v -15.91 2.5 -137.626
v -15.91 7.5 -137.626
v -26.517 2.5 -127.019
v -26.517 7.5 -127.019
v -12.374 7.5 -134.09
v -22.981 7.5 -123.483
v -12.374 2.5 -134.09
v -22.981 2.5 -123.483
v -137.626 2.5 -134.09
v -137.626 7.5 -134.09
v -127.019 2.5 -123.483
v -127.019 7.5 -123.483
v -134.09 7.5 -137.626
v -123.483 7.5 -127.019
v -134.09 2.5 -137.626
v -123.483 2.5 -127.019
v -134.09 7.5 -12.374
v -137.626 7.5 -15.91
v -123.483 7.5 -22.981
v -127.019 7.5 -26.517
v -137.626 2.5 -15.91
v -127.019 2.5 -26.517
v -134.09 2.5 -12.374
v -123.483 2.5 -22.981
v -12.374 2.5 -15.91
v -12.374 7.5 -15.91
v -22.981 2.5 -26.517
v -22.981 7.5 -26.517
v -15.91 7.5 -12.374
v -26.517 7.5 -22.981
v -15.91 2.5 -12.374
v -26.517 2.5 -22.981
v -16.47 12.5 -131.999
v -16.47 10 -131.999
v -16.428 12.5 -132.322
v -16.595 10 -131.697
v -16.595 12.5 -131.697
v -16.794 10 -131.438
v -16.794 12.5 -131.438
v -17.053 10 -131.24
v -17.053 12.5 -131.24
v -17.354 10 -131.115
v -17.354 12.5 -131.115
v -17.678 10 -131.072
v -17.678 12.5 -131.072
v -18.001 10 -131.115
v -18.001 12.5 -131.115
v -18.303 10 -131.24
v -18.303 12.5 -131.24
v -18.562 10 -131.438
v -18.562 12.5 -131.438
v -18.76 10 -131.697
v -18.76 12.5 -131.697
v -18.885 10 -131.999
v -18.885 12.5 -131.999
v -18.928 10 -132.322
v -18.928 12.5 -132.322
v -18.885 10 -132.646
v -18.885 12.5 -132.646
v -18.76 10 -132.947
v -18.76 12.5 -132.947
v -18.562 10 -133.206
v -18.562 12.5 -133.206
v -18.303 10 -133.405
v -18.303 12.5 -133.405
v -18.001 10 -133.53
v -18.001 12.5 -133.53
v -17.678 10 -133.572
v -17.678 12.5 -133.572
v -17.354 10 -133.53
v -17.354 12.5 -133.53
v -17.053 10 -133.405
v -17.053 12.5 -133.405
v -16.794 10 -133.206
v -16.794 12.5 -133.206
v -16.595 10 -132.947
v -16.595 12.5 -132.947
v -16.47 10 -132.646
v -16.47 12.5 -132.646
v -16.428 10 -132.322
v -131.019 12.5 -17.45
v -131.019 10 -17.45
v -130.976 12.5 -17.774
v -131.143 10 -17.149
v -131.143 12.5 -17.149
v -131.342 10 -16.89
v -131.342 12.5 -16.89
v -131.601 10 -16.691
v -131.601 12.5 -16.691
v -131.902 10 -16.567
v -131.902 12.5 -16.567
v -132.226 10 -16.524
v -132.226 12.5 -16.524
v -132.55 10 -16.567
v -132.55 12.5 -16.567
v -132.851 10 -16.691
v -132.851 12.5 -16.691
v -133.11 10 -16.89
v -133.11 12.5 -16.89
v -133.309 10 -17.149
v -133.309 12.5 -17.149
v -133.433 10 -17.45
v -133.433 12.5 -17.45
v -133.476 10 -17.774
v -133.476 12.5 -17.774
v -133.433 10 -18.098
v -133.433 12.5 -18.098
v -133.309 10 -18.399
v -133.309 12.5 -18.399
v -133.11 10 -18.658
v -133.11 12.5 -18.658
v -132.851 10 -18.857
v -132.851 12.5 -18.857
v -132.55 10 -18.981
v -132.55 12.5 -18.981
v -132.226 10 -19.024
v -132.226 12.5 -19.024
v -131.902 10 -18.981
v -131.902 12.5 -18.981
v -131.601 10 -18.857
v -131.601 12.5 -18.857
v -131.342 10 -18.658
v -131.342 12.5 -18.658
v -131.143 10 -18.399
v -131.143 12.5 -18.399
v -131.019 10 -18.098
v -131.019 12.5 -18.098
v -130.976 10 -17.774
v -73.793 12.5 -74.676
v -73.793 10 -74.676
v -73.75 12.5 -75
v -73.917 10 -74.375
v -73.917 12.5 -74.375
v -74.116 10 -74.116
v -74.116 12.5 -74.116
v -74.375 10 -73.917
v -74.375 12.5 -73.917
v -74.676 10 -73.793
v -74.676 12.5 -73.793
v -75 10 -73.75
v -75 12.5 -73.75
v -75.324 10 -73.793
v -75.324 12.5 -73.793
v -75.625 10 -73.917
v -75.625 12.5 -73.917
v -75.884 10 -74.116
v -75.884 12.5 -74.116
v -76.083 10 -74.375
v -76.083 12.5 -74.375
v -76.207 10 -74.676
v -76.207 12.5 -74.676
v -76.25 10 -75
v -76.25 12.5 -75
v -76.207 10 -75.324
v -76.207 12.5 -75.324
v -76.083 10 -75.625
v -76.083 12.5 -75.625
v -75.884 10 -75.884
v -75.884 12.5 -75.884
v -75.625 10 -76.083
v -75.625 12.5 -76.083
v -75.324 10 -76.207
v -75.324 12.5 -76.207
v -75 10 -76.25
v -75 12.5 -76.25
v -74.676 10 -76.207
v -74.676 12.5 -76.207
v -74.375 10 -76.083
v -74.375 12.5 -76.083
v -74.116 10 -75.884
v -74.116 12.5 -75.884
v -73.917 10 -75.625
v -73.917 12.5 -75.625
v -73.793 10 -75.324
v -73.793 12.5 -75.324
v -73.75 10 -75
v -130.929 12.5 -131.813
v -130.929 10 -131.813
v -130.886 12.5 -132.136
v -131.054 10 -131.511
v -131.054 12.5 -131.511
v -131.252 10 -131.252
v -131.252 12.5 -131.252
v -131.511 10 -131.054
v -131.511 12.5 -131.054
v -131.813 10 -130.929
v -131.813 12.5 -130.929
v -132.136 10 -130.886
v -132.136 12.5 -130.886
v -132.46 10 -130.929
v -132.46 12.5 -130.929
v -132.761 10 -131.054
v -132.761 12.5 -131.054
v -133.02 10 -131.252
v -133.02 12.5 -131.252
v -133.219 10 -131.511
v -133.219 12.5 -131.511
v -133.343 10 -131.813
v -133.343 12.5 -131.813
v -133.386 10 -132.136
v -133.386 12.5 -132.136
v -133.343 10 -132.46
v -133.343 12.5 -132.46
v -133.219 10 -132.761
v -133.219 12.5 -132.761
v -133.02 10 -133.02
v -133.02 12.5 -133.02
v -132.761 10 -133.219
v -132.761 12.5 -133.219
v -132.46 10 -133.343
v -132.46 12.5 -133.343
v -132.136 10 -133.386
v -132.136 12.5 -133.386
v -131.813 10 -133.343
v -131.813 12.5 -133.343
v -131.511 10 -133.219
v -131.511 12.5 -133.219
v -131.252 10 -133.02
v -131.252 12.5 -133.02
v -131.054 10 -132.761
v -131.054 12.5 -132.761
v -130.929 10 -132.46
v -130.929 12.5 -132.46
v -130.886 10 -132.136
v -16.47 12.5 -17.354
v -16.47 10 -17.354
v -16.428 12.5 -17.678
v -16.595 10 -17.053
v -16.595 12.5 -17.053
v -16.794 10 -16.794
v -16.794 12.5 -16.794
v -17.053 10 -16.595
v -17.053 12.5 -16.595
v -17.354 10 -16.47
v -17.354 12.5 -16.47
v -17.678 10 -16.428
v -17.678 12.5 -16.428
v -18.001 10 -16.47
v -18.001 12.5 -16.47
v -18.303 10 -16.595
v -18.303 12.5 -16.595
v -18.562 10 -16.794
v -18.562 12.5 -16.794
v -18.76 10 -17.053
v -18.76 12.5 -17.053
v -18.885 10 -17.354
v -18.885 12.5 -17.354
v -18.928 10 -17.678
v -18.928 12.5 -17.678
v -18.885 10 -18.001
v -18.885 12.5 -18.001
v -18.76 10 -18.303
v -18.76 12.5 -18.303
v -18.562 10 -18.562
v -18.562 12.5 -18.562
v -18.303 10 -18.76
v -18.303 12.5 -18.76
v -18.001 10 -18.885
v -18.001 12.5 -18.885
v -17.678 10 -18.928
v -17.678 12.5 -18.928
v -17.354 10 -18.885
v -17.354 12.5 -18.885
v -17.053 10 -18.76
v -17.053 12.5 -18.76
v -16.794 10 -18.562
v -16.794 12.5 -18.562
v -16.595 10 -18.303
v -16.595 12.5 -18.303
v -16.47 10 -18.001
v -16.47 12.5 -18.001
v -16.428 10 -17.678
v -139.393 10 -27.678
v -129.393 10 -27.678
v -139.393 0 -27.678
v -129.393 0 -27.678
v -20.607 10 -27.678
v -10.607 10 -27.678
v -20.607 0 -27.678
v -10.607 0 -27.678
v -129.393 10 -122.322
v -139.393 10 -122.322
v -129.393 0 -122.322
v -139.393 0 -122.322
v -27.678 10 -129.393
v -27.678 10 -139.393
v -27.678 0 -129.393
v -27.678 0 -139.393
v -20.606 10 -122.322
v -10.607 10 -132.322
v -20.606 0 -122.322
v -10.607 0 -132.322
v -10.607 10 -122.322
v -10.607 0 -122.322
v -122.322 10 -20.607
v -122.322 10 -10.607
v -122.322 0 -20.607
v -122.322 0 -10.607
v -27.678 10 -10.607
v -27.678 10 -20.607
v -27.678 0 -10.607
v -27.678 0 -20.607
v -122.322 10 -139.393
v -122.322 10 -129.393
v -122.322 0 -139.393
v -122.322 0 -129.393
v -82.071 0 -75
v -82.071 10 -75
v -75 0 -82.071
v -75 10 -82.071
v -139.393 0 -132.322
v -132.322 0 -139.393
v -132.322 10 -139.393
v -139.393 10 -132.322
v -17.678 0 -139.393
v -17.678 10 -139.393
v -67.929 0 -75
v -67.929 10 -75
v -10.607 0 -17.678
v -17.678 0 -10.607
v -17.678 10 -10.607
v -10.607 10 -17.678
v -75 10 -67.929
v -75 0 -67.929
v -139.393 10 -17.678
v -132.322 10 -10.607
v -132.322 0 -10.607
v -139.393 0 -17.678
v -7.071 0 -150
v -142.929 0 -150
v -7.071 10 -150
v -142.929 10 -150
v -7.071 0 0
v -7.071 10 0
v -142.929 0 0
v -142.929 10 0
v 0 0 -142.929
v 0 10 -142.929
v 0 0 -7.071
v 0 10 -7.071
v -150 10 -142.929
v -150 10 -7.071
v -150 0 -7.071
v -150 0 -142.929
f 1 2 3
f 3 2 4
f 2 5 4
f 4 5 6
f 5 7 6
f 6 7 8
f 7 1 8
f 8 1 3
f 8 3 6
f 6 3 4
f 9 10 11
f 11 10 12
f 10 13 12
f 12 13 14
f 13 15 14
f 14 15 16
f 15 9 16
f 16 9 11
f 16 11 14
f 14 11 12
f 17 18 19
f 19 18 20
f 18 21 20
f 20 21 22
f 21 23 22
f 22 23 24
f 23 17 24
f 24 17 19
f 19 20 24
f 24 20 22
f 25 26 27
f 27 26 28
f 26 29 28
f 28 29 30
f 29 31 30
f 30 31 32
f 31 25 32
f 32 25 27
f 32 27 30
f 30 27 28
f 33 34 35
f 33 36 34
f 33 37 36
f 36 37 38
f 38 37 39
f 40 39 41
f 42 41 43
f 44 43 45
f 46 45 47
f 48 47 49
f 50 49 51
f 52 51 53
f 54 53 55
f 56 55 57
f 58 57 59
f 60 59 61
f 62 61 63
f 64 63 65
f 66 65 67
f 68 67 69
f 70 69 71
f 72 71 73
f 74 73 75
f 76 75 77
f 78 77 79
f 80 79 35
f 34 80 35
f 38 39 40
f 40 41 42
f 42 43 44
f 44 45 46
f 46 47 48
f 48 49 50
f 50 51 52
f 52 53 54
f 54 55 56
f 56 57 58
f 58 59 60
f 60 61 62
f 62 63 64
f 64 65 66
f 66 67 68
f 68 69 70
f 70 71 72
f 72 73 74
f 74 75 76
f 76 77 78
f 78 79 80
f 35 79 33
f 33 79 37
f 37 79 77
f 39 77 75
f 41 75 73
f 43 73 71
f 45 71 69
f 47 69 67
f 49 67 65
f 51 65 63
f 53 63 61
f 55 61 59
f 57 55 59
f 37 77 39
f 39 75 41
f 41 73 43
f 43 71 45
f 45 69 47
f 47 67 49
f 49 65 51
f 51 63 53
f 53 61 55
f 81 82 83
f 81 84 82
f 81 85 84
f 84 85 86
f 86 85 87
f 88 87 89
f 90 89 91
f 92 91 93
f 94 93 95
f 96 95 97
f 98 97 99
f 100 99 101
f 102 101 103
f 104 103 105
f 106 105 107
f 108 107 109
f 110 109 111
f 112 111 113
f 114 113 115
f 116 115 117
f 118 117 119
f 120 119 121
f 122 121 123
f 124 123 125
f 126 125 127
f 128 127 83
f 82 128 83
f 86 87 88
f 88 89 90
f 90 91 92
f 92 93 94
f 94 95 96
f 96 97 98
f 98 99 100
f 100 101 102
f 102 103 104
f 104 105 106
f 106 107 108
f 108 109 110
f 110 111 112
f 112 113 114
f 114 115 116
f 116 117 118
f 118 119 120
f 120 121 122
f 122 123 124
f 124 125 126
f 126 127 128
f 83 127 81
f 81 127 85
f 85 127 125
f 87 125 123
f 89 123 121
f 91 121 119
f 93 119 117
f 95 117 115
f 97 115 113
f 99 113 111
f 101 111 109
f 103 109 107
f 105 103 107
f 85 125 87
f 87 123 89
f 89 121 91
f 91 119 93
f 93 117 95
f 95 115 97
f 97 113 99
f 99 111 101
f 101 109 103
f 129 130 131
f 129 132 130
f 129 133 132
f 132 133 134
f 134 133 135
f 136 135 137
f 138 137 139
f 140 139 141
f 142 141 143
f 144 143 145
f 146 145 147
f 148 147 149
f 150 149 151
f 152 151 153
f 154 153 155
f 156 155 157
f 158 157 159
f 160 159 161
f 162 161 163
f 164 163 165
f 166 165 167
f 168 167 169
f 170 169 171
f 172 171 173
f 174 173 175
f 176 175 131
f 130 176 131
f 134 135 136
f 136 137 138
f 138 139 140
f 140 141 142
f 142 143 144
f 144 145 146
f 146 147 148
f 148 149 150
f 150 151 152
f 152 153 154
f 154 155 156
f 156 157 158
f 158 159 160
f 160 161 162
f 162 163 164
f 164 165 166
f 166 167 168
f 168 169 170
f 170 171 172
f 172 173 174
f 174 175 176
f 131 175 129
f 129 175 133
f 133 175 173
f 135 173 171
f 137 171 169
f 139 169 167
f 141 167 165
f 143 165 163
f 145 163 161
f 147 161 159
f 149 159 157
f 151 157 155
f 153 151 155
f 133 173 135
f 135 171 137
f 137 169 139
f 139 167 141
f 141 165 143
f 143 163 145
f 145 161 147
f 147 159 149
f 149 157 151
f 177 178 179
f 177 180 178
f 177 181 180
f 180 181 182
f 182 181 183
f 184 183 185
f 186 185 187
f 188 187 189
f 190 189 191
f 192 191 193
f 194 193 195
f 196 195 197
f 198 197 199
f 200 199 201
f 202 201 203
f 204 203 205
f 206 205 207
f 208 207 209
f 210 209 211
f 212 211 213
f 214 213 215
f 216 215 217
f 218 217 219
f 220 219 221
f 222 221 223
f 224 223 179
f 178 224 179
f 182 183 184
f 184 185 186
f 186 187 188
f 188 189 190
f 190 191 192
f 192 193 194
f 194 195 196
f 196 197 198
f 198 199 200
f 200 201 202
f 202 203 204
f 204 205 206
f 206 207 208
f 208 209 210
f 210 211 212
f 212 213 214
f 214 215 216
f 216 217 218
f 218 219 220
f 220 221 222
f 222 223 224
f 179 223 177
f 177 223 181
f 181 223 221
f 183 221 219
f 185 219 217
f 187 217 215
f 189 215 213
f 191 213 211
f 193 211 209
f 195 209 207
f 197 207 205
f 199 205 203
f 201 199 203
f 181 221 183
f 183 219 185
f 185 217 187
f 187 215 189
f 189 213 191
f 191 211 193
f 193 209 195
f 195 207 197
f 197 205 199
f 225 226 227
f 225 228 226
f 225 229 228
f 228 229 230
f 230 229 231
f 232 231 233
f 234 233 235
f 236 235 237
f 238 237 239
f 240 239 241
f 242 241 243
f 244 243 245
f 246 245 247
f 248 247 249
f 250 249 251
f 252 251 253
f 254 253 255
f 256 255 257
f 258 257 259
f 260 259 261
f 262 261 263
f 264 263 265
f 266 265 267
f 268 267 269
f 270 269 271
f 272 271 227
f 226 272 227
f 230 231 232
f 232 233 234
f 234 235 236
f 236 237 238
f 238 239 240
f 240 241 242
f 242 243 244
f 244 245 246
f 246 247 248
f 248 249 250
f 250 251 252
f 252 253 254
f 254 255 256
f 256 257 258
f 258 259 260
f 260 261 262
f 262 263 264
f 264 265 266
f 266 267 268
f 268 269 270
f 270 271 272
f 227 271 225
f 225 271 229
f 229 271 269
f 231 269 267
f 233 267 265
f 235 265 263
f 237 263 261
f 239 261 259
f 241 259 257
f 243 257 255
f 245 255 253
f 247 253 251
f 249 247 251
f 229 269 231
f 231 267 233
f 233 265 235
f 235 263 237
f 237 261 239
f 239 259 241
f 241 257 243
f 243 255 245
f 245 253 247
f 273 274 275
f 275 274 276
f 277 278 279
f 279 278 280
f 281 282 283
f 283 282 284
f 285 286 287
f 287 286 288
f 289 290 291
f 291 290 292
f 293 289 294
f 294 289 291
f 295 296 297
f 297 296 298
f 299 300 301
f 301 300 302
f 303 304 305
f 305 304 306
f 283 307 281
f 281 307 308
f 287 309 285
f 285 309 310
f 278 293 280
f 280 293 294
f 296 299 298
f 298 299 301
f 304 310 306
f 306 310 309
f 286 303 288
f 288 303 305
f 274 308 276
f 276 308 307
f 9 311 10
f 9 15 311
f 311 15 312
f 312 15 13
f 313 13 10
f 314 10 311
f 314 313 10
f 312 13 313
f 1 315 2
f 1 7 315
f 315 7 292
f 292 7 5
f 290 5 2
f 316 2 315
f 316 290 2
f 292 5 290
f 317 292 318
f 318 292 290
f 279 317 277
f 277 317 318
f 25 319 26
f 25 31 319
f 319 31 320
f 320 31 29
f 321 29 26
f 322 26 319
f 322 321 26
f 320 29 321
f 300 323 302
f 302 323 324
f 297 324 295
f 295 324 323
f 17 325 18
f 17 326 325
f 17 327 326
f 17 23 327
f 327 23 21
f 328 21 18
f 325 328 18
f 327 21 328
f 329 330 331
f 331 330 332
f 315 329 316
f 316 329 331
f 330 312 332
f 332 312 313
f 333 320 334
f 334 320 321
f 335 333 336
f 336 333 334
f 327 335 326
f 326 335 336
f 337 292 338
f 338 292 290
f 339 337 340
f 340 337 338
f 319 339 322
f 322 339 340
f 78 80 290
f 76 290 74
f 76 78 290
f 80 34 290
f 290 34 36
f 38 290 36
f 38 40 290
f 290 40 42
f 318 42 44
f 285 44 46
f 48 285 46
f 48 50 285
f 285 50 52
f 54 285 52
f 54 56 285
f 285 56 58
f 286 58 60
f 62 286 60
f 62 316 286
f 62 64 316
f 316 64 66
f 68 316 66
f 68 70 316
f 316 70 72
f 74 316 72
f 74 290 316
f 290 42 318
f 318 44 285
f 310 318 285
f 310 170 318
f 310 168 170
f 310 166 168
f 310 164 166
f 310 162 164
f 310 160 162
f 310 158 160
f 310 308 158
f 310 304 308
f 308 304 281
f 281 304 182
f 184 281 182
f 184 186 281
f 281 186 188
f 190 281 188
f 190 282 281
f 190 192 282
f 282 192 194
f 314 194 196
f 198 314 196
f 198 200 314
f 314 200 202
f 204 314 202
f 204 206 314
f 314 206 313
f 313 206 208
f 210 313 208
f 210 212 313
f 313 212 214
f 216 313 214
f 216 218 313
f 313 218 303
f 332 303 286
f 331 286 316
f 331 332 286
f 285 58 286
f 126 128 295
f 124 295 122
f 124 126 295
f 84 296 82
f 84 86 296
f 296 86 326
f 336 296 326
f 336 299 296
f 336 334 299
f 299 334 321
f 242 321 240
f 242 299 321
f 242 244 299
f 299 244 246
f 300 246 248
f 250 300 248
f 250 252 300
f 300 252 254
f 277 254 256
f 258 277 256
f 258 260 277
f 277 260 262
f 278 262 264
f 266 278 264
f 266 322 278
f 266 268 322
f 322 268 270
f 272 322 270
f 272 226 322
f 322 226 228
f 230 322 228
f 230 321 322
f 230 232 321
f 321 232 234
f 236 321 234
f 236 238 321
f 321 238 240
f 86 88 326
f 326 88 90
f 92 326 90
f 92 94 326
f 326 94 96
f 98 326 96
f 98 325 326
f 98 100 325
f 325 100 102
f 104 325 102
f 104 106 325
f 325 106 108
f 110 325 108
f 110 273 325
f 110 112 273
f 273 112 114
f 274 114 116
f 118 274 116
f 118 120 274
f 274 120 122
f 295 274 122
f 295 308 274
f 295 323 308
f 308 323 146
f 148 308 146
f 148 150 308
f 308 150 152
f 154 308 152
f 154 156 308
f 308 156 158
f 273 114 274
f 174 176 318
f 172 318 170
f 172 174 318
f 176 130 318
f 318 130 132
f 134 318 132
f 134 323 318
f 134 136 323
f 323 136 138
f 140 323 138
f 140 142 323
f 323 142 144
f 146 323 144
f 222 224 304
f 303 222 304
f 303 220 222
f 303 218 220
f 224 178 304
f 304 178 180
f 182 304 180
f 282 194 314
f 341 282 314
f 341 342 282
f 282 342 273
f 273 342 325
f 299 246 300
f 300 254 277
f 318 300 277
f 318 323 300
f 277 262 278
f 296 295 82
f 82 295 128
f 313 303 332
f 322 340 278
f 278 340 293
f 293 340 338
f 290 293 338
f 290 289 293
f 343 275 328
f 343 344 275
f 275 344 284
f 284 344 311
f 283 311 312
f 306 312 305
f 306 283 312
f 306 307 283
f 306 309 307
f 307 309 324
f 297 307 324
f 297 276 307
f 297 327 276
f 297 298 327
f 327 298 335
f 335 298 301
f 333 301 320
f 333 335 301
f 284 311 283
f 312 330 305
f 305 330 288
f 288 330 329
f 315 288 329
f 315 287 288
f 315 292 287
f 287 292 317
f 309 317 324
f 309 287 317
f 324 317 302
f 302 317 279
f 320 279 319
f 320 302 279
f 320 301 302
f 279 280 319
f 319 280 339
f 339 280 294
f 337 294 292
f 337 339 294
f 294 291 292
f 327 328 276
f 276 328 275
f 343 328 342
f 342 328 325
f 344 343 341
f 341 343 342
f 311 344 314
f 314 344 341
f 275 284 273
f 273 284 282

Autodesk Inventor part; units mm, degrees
ref_plane "YZ Plane" through (0, 0, 0) normal (1, 0, 0) x (0, 1, 0)
ref_plane "XZ Plane" through (0, 0, 0) normal (0, 1, 0) x (-1, 0, 0)
ref_plane "XY Plane" through (0, 0, 0) normal (0, 0, 1) x (1, 0, 0)
sketch "Sketch1" plane through (0, 0, 0) normal (0, 1, 0) x (-1, 0, 0)
  line L0 (0, -7.0711) -> (0, -142.9289)
  line L1 (7.0711, 0) -> (142.9289, 0)
  line L2 (150, -7.0711) -> (150, -142.9289)
  line L3 (142.9289, -150) -> (7.0711, -150)
  line L4 (139.3934, -10.6066) -> (135.8579, -14.1421)
  line L5 (135.8579, -14.1421) -> (132.3223, -10.6066)
  line L6 (132.3223, -10.6066) -> (135.8579, -14.1421)
  line L7 (135.8579, -14.1421) -> (139.3934, -17.6777)
  line L8 (139.3934, -17.6777) -> (150, -7.0711)
  line L9 (132.3223, -10.6066) -> (142.9289, 0)
  line L10 (139.3934, -139.3934) -> (135.8579, -135.8579)
  line L11 (135.8579, -135.8579) -> (132.3223, -139.3934)
  line L12 (132.3223, -139.3934) -> (142.9289, -150)
  line L13 (135.8579, -135.8579) -> (139.3934, -132.3223)
  line L14 (139.3934, -132.3223) -> (150, -142.9289)
  line L15 (10.6066, -139.3934) -> (14.1421, -135.8579)
  line L16 (14.1421, -135.8579) -> (10.6066, -132.3223)
  line L17 (10.6066, -132.3223) -> (14.1421, -135.8579)
  line L18 (14.1421, -135.8579) -> (17.6777, -139.3934)
  line L19 (17.6777, -139.3934) -> (7.0711, -150)
  line L20 (10.6066, -132.3223) -> (0, -142.9289)
  line L21 (10.6066, -10.6066) -> (14.1421, -14.1421)
  line L22 (14.1421, -14.1421) -> (10.6066, -17.6777)
  line L23 (10.6066, -17.6777) -> (14.1421, -14.1421)
  line L24 (14.1421, -14.1421) -> (17.6777, -10.6066)
  line L25 (7.0711, 0) -> (17.6777, -10.6066)
  line L26 (10.6066, -17.6777) -> (0, -7.0711)
  line L27 (132.3223, -10.6066) -> (75, -67.9289)
  line L28 (67.9289, -75) -> (10.6066, -132.3223)
  line L29 (132.3223, -10.6066) -> (17.6777, -10.6066)
  line L30 (139.3934, -17.6777) -> (139.3934, -132.3223)
  line L31 (132.3223, -139.3934) -> (17.6777, -139.3934)
  line L32 (10.6066, -132.3223) -> (10.6066, -17.6777)
  line L33 (139.3934, -10.6066) -> (135.8579, -14.1421)
  line L34 (14.1421, -135.8579) -> (0, -150)
  line L35 (10.6066, -10.6066) -> (14.1421, -14.1421)
  line L36 (135.8579, -135.8579) -> (139.3934, -139.3934)
  line L37 (139.3934, -132.3223) -> (82.0711, -75)
  line L38 (75, -67.9289) -> (17.6777, -10.6066)
  line L39 (10.6066, -17.6777) -> (67.9289, -75)
  line L40 (75, -82.0711) -> (132.3223, -139.3934)
  line L41 (139.3934, -17.6777) -> (82.0711, -75)
  line L42 (75, -82.0711) -> (17.6777, -139.3934)
  point P0 (0, 0)
  dimension "d0" = 150
extrude "Extrusion1" add sketch "Sketch1" along normal blind 10 contours L26 L32 L20 L0 | L22 L24 L38 L27 L5 L7 L41 L37 L13 L11 L40 L42 L18 L16 L28 L39 | L25 L1 L9 L29 | L31 L12 L3 L19 | L8 L2 L14 L30
sketch "Sketch2" plane through (0, 10, 0) normal (0, 1, 0) x (1, 0, 0)
  line L0 (-17.6777, 10.6066) -> (-27.6777, 10.6066)
  line L1 (-17.6777, 10.6066) -> (-132.3223, 10.6066) projected
  line L2 (-27.6777, 10.6066) -> (-27.6777, 20.6066)
  line L3 (-75, 67.9289) -> (-17.6777, 10.6066) projected
  line L4 (-10.6066, 17.6777) -> (-67.9289, 75) projected
  line L5 (-20.6066, 27.6777) -> (-10.6066, 27.6777)
  line L6 (-10.6066, 27.6777) -> (-10.6066, 17.6777)
  line L7 (-10.6066, 132.3223) -> (-10.6066, 17.6777) projected
  line L8 (-132.3223, 10.6066) -> (-75, 67.9289) projected
  line L9 (-132.3223, 10.6066) -> (-122.3223, 10.6066)
  line L10 (-122.3223, 10.6066) -> (-122.3223, 20.6066)
  line L11 (-122.3223, 20.6066) -> (-129.3934, 27.6777)
  line L12 (-82.0711, 75) -> (-139.3934, 17.6777) projected
  line L13 (-139.3934, 27.6777) -> (-129.3934, 27.6777)
  line L14 (-139.3934, 17.6777) -> (-139.3934, 132.3223) projected
  line L15 (-139.3934, 27.6777) -> (-139.3934, 17.6777)
  line L16 (-139.3934, 17.6777) -> (-129.3934, 27.6777)
  line L17 (-132.3223, 10.6066) -> (-122.3223, 20.6066)
  line L18 (-139.3934, 132.3223) -> (-139.3934, 122.3223)
  line L19 (-139.3934, 122.3223) -> (-129.3934, 122.3223)
  line L20 (-139.3934, 132.3223) -> (-82.0711, 75) projected
  line L21 (-129.3934, 122.3223) -> (-122.3223, 129.3934)
  line L22 (-75, 82.0711) -> (-132.3223, 139.3934) projected
  line L23 (-122.3223, 129.3934) -> (-122.3223, 139.3934)
  line L24 (-132.3223, 139.3934) -> (-17.6777, 139.3934) projected
  line L25 (-122.3223, 139.3934) -> (-132.3223, 139.3934)
  line L26 (-17.6777, 139.3934) -> (-75, 82.0711) projected
  line L27 (-17.6777, 139.3934) -> (-27.6777, 139.3934)
  line L28 (-27.6777, 129.3934) -> (-27.6777, 139.3934)
  line L29 (-27.6777, 129.3934) -> (-20.6065, 122.3222)
  line L30 (-20.6065, 122.3222) -> (-10.6066, 122.3222)
  line L31 (-10.6066, 132.3223) -> (-20.6065, 122.3222)
  line L32 (-10.6066, 17.6777) -> (-20.6066, 27.6777)
  line L33 (-27.6777, 20.6066) -> (-17.6777, 10.6066)
  line L34 (-10.6066, 17.6777) -> (-10.6066, 27.6777)
  line L35 (-20.6066, 27.6777) -> (-10.6066, 17.6777)
  point P0 (0, 0)
  dimension "d9" = 10
  dimension "d10" = 10
  dimension "d11" = 10
extrude "Extrusion2" add sketch "Sketch2" against normal blind 10 contours L6 L4 L5 | L31 L7 L30 | L22 L24 L23 | L12 L14 L13 | L0 L2 L3 | L1 L8 L10 | L19 L14 L20 | L28 L24 L26
sketch "Sketch3" plane through (0, 10, 0) normal (0, 1, 0) x (1, 0, 0)
  line L0 (-67.9289, 75) -> (-10.6066, 132.3223) projected
  line L1 (-82.0711, 75) -> (-75, 67.9289)
  circle A0 centre (-75, 75) radius 1.25
  line L2 (-75, 82.0711) -> (-122.3223, 129.3934) projected
  line L3 (-82.0711, 75) -> (-129.3934, 27.6777) projected
  line L4 (-17.6777, 10.6066) -> (-10.6066, 17.6777) projected
  line L5 (-14.1421, 14.1421) -> (-17.6777, 10.6066)
  line L6 (-17.6777, 10.6066) -> (-14.1421, 14.1421)
  line L7 (-14.1421, 14.1421) -> (-17.6777, 10.6066)
  line L8 (-20.6066, 27.6777) -> (-67.9289, 75) projected
  line L9 (-10.6066, 132.3223) -> (-17.6777, 139.3934) projected
  circle A1 centre (-132.226, 17.774) radius 1.25
  circle A2 centre (-132.136, 132.136) radius 1.25
  circle A3 centre (-17.6777, 132.3223) radius 1.25
  circle A4 centre (-17.6777, 17.6777) radius 1.25
  point P0 (0, 0)
  dimension "d14" = 2.5
  dimension "d21" = 2.5
extrude "Extrusion3" add sketch "Sketch3" along normal blind 2.5
sketch "Sketch4" plane through (-10.6066, 0, -17.6777) normal (0.7071, 0, 0.7071) x (0.7071, 0, -0.7071)
  line L0 (-5, 0) -> (-5, 2.5)
  line L1 (-5, 2.5) -> (-2.5, 2.5)
  line L2 (-2.5, 2.5) -> (-2.5, 7.5)
  line L3 (-2.5, 7.5) -> (-7.5, 7.5)
  line L4 (-7.5, 7.5) -> (-7.5, 2.5)
  line L5 (-7.5, 2.5) -> (-5, 2.5)
  dimension "d25" = 2.5
  dimension "d26" = 2.5
  dimension "d27" = 5
  dimension "d28" = 5
extrude "Extrusion4" cut sketch "Sketch4" against normal blind 15
sketch "Sketch5" plane through (-132.3223, 0, -10.6066) normal (-0.7071, 0, 0.7071) x (0.7071, 0, 0.7071)
  line L0 (0, 0) -> (0, 10) projected
  line L1 (0, 0) -> (0, 5)
  line L2 (0, 5) -> (-2.5, 5)
  line L3 (-2.5, 5) -> (0, 5)
  line L4 (-2.5, 5) -> (-2.5, 7.5)
  line L5 (-2.5, 7.5) -> (-7.5, 7.5)
  line L6 (-7.5, 7.5) -> (-7.5, 2.5)
  line L7 (-7.5, 2.5) -> (-2.5, 2.5)
  line L8 (-2.5, 2.5) -> (-2.5, 5)
  point P0 (101.066, 0)
  dimension "d31" = 5
  dimension "d32" = 2.5
  dimension "d33" = 2.5
  dimension "d34" = 5
extrude "Extrusion5" cut sketch "Sketch5" against normal blind 15
sketch "Sketch6" plane through (-139.3934, 0, -132.3223) normal (-0.7071, 0, -0.7071) x (-0.7071, 0, 0.7071)
  line L0 (-5, 0) -> (-5, 2.5)
  line L1 (-7.5, 2.5) -> (-2.5, 2.5) projected
  line L2 (-5, 2.5) -> (-2.5, 2.5)
  line L3 (-2.5, 2.5) -> (-2.5, 7.5) projected
  line L4 (-2.5, 2.5) -> (-2.5, 7.5)
  line L5 (-2.5, 7.5) -> (-7.5, 7.5) projected
  line L6 (-2.5, 7.5) -> (-7.5, 7.5)
  line L7 (-7.5, 7.5) -> (-7.5, 2.5)
  line L8 (-7.5, 2.5) -> (-5, 2.5)
  dimension "d37" = 2.5
extrude "Extrusion6" cut sketch "Sketch6" against normal blind 15
sketch "Sketch7" plane through (-17.6777, 0, -139.3934) normal (0.7071, 0, -0.7071) x (-0.7071, 0, -0.7071)
  line L0 (0, 0) -> (-5, 0)
  line L1 (-10, 0) -> (0, 0) projected
  line L2 (-5, 0) -> (-5, 2.5)
  line L3 (-7.5, 2.5) -> (-2.5, 2.5) projected
  line L4 (-2.5, 2.5) -> (-2.5, 7.5) projected
  line L5 (-2.5, 2.5) -> (-2.5, 7.5)
  line L6 (-2.5, 7.5) -> (-7.5, 7.5) projected
  line L7 (-2.5, 7.5) -> (-7.5, 7.5)
  line L8 (-7.5, 7.5) -> (-7.5, 2.5) projected
  line L9 (-7.5, 7.5) -> (-7.5, 2.5)
  line L10 (-7.5, 2.5) -> (-5, 2.5)
  point P0 (-111.066, 0)
  dimension "d40" = 5
extrude "Extrusion7" cut sketch "Sketch7" against normal blind 15
sketch "Sketch8" plane through (0, 10, 0) normal (0, 1, 0) x (1, 0, 0)
  point P0 (0, 0)
properties part number "Frame"
